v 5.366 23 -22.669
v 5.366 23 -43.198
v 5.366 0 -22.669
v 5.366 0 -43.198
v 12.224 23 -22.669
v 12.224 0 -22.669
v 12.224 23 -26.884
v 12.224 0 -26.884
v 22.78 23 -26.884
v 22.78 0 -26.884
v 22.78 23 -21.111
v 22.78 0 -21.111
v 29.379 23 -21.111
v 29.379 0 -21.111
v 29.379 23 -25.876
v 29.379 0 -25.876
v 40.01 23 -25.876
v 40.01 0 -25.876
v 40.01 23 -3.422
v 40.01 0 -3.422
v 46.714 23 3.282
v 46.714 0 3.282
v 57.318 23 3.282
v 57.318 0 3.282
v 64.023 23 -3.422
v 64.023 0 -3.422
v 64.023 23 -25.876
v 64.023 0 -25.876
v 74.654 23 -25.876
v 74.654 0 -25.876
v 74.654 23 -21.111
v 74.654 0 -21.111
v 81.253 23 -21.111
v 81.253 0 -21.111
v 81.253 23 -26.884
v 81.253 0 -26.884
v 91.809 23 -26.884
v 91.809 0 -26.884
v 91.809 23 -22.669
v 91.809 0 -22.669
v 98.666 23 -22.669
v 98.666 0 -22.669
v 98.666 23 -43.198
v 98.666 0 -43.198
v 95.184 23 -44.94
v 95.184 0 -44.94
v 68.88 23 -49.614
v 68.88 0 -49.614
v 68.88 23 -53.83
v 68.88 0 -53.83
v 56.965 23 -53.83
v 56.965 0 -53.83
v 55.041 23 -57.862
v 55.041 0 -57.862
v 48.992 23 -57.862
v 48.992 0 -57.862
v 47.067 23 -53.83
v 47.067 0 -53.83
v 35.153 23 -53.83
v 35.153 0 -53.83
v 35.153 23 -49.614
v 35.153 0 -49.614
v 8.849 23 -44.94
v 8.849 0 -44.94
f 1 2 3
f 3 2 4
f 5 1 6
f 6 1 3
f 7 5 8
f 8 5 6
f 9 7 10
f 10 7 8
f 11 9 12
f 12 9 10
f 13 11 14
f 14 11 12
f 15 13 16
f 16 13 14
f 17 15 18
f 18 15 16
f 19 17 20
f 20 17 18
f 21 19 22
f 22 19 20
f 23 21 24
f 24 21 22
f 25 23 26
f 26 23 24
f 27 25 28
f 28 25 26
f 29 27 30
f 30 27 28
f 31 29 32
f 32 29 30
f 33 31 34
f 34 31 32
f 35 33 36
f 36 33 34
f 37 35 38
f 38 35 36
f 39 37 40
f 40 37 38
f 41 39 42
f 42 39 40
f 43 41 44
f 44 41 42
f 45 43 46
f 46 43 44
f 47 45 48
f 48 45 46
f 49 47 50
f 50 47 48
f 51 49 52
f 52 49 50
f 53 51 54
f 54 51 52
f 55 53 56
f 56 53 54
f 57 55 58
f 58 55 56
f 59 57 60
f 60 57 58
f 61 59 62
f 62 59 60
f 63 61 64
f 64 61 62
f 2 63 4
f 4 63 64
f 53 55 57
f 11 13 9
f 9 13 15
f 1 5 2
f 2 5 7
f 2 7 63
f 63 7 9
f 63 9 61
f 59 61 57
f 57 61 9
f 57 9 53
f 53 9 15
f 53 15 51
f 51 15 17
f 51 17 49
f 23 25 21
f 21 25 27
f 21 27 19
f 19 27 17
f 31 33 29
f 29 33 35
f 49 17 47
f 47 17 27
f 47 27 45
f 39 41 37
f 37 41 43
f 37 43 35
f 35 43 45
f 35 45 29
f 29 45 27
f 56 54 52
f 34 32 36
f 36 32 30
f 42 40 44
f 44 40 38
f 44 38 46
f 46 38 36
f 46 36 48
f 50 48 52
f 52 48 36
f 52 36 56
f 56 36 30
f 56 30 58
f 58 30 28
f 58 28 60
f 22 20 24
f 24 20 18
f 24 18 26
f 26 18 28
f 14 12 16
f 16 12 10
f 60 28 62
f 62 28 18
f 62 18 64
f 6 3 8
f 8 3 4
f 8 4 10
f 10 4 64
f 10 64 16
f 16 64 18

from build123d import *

# Parameters (mm, degrees)
BOSS_EXTRUDE1_DEPTH = 23


with BuildPart() as part:
    # Sketch1 → Boss-Extrude1 (new body)
    with BuildSketch(Plane(origin=(0, 0, 0), x_dir=(1, 0, 0), z_dir=(0, 1, 0))):
        Polygon((5.366336563, 43.198240053), (8.849047037, 44.93959529), (35.152676147, 49.613759348), (35.152676147, 53.829672027), (47.067211981, 53.829672027), (48.991867769, 57.862284156), (55.040785962, 57.862284156), (56.96544175, 53.829672027), (68.879977584, 53.829672027), (68.879977584, 49.613759348), (95.183606694, 44.93959529), (98.666317168, 43.198240053), (98.666317168, 22.668578308), (93.808852559, 22.668578308), (91.808852559, 22.668578308), (91.808852559, 26.884490988), (81.252764796, 26.884490988), (81.252764796, 21.110523622), (74.65394495, 21.110523622), (74.65394495, 25.876337956), (64.022512975, 25.876337956), (64.022512975, 3.422020423), (57.31833656, -3.282155992), (46.714317171, -3.282155992), (40.010140756, 3.422020423), (40.010140756, 25.876337956), (29.378708781, 25.876337956), (29.378708781, 21.110523622), (22.779888935, 21.110523622), (22.779888935, 26.884490988), (12.223801172, 26.884490988), (12.223801172, 22.668578308), (10.223801172, 22.668578308), (5.366336563, 22.668578308), align=None)
    extrude(amount=BOSS_EXTRUDE1_DEPTH)


solid = part.part
